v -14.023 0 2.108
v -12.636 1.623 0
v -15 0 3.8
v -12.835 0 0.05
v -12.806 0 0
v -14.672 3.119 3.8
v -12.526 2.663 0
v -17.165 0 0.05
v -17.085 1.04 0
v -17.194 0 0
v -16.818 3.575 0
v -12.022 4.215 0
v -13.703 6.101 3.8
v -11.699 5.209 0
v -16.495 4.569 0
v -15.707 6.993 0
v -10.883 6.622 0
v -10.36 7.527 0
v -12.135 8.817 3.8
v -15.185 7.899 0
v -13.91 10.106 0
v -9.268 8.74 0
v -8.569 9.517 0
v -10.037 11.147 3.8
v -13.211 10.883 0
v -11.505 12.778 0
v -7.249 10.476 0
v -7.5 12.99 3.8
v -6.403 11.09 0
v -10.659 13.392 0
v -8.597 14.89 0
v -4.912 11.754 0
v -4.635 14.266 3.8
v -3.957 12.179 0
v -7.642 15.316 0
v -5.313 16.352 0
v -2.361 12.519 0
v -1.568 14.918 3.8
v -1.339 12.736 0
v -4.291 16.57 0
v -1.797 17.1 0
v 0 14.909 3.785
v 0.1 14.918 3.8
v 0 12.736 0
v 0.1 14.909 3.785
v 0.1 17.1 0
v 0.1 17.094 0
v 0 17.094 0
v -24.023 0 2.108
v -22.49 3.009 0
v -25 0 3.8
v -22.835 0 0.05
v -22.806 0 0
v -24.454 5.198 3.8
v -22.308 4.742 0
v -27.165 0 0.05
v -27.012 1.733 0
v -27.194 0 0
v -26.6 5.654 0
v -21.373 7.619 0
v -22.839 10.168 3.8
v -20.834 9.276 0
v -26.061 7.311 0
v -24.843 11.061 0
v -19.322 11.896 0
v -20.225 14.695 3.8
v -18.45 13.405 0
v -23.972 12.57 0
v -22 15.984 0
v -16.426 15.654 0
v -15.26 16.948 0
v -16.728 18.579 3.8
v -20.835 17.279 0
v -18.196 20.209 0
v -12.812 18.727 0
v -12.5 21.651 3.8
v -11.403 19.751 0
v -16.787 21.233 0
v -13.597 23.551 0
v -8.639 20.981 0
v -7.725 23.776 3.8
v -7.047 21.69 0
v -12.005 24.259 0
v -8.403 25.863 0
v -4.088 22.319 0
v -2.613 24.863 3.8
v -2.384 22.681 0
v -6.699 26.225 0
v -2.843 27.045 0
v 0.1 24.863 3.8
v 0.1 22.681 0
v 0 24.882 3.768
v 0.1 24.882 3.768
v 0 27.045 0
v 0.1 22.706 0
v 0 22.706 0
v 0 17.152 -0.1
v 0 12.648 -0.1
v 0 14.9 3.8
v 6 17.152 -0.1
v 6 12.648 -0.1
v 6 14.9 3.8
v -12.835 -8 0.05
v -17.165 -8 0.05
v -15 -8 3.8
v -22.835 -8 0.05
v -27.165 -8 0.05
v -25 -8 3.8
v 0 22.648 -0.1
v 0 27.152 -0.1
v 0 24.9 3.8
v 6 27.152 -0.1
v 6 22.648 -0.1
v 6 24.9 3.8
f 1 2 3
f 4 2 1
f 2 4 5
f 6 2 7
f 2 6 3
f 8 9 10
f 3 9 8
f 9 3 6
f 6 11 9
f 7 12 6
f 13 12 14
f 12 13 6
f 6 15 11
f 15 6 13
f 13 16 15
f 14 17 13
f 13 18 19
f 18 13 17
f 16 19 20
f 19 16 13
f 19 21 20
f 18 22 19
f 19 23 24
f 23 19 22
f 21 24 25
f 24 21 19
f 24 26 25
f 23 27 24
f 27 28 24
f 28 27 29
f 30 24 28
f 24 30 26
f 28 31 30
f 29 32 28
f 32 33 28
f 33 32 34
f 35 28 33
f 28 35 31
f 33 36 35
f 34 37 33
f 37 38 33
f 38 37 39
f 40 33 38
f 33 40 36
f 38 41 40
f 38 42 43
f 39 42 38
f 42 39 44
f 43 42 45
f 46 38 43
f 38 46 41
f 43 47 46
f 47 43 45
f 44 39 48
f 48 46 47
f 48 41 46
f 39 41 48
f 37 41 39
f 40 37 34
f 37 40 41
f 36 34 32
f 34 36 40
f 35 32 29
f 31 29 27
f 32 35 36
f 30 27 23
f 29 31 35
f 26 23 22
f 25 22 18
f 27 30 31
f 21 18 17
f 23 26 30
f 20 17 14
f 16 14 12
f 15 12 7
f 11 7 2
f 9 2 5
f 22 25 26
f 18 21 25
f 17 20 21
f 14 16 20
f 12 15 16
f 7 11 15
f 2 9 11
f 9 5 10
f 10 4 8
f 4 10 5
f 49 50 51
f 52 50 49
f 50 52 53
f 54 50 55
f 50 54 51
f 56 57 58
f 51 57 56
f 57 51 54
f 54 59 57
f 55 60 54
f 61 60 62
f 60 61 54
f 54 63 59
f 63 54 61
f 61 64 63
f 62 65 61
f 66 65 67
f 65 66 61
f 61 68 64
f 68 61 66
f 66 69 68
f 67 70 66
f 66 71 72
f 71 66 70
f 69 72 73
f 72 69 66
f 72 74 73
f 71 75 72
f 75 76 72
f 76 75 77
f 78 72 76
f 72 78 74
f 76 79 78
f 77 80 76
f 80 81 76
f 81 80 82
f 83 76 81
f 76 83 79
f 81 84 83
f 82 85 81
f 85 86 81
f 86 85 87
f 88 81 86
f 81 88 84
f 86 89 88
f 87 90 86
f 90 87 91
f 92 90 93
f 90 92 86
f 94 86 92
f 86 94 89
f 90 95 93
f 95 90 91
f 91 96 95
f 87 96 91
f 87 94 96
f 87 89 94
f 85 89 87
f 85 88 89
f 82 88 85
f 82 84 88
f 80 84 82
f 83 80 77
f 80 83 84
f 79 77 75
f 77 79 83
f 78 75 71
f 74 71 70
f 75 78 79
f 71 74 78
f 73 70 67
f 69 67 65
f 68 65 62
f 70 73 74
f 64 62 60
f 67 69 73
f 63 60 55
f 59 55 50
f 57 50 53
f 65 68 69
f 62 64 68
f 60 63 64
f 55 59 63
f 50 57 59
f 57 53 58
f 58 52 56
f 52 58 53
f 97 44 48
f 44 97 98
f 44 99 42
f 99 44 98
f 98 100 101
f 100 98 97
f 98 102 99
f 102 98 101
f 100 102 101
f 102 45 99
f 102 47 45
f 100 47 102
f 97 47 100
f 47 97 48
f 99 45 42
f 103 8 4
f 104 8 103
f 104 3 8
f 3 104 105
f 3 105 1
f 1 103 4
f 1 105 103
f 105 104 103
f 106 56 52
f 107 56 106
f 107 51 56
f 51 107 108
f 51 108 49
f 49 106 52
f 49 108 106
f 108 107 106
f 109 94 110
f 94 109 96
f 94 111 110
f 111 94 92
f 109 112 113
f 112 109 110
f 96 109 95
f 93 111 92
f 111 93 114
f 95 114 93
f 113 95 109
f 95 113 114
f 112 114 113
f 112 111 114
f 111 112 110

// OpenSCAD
// file: triangle_union.scad
module triangulo_base(height, radio, wall) {
  //const
  triangle_height = height;
  triangle_radio = radio;
  triangle_wall = wall;

  /*triangle_height = 25;
  triangle_radio = 5.4/2;
  triangle_wall = 5.4/2;*/
	//Rotate triangle To lean on the bed of the printer
  rotate([0, 90, 0]) {
    rotate(-30){
      triangle_tube(triangle_height, triangle_radio, triangle_wall);
    }
  }
}

//triangle_tube(20, 5, 5);
module triangle_tube(height,radius,wall)
{
   tubify(radius,wall) triangle_prism(height,radius);
}

//Tubifies any regular prism
module tubify(radius,wall)
{
  difference()
  {
    children(0);
    translate([0, 0, -0.1]) scale([(radius-wall)/radius, (radius-wall)/radius, 2]) children(0);
  }
}

module triangle_prism(height,radius)
{
  linear_extrude(height=height) triangle(radius);
}

module triangle(radius)
{
  o=radius/2;		//equivalent to radius*sin(30)
  a=radius*sqrt(3)/2;	//equivalent to radius*cos(30)
  polygon(points=[[-a,-o],[0,radius],[a,-o]],paths=[[0,1,2]]);
}
// main file
include <triangle_union.scad>
//triangulo_base(10, 5.4/2, 5.4/2);


trinagle_positon_x = 5;
triangle_radio = 3.8;
triangle_step_distance = 10;
triangle_angle = 90; //TODO max 170 to fixed

triagle_generator(trinagle_positon_x, triangle_step_distance, triangle_radio, triangle_angle);

module triagle_generator(positon_x, step_distance, radio, angle){
  for (i = [1:2]) {
    position = [positon_x+i*triangle_step_distance,0,0];
    echo(str("Variable = ", position));

    translate([0, positon_x-0.1+i*step_distance, 1.2]) {
      rotate([0, 90, 0]) {
        rotate([0, 0, -30]){
          linear_extrude(height=6){
            triangle(2.6);
          }
        }
      }
    }

    //TODO parametrice extension
    translate([-15, 0, 1.3]) {
      rotate([90, 90, 0]) {
        rotate([0, 0, -30]){
          linear_extrude(height=8){
            triangle(2.5);
          }
        }
      }
    }

    //TODO parametrice extension
    translate([-25, 0, 1.3]) {
      rotate([90, 90, 0]) {
        rotate([0, 0, -30]){
          linear_extrude(height=8){
            triangle(2.5);
          }
        }
      }
    }

    intersection() {
      rotate_extrude() {
        translate(position) {
          triangle(radio);
        }
      }
      hull() {
        rotate(0) cube([0.1,700,700]);
        rotate(angle) cube([0.1,700,700]);
      }
    }
  }
}

module triangle(radius) {
  o=radius/2;
  a=radius*sqrt(3)/2;
  polygon(points=[[-a,-o],[0,radius],[a,-o]],paths=[[0,1,2]]);
}

function position_poligonos(radius) =
let(a=radius*sqrt(3)/2)
let(o=1000)
[[-a,-o],[0,radius],[a,-o]];
